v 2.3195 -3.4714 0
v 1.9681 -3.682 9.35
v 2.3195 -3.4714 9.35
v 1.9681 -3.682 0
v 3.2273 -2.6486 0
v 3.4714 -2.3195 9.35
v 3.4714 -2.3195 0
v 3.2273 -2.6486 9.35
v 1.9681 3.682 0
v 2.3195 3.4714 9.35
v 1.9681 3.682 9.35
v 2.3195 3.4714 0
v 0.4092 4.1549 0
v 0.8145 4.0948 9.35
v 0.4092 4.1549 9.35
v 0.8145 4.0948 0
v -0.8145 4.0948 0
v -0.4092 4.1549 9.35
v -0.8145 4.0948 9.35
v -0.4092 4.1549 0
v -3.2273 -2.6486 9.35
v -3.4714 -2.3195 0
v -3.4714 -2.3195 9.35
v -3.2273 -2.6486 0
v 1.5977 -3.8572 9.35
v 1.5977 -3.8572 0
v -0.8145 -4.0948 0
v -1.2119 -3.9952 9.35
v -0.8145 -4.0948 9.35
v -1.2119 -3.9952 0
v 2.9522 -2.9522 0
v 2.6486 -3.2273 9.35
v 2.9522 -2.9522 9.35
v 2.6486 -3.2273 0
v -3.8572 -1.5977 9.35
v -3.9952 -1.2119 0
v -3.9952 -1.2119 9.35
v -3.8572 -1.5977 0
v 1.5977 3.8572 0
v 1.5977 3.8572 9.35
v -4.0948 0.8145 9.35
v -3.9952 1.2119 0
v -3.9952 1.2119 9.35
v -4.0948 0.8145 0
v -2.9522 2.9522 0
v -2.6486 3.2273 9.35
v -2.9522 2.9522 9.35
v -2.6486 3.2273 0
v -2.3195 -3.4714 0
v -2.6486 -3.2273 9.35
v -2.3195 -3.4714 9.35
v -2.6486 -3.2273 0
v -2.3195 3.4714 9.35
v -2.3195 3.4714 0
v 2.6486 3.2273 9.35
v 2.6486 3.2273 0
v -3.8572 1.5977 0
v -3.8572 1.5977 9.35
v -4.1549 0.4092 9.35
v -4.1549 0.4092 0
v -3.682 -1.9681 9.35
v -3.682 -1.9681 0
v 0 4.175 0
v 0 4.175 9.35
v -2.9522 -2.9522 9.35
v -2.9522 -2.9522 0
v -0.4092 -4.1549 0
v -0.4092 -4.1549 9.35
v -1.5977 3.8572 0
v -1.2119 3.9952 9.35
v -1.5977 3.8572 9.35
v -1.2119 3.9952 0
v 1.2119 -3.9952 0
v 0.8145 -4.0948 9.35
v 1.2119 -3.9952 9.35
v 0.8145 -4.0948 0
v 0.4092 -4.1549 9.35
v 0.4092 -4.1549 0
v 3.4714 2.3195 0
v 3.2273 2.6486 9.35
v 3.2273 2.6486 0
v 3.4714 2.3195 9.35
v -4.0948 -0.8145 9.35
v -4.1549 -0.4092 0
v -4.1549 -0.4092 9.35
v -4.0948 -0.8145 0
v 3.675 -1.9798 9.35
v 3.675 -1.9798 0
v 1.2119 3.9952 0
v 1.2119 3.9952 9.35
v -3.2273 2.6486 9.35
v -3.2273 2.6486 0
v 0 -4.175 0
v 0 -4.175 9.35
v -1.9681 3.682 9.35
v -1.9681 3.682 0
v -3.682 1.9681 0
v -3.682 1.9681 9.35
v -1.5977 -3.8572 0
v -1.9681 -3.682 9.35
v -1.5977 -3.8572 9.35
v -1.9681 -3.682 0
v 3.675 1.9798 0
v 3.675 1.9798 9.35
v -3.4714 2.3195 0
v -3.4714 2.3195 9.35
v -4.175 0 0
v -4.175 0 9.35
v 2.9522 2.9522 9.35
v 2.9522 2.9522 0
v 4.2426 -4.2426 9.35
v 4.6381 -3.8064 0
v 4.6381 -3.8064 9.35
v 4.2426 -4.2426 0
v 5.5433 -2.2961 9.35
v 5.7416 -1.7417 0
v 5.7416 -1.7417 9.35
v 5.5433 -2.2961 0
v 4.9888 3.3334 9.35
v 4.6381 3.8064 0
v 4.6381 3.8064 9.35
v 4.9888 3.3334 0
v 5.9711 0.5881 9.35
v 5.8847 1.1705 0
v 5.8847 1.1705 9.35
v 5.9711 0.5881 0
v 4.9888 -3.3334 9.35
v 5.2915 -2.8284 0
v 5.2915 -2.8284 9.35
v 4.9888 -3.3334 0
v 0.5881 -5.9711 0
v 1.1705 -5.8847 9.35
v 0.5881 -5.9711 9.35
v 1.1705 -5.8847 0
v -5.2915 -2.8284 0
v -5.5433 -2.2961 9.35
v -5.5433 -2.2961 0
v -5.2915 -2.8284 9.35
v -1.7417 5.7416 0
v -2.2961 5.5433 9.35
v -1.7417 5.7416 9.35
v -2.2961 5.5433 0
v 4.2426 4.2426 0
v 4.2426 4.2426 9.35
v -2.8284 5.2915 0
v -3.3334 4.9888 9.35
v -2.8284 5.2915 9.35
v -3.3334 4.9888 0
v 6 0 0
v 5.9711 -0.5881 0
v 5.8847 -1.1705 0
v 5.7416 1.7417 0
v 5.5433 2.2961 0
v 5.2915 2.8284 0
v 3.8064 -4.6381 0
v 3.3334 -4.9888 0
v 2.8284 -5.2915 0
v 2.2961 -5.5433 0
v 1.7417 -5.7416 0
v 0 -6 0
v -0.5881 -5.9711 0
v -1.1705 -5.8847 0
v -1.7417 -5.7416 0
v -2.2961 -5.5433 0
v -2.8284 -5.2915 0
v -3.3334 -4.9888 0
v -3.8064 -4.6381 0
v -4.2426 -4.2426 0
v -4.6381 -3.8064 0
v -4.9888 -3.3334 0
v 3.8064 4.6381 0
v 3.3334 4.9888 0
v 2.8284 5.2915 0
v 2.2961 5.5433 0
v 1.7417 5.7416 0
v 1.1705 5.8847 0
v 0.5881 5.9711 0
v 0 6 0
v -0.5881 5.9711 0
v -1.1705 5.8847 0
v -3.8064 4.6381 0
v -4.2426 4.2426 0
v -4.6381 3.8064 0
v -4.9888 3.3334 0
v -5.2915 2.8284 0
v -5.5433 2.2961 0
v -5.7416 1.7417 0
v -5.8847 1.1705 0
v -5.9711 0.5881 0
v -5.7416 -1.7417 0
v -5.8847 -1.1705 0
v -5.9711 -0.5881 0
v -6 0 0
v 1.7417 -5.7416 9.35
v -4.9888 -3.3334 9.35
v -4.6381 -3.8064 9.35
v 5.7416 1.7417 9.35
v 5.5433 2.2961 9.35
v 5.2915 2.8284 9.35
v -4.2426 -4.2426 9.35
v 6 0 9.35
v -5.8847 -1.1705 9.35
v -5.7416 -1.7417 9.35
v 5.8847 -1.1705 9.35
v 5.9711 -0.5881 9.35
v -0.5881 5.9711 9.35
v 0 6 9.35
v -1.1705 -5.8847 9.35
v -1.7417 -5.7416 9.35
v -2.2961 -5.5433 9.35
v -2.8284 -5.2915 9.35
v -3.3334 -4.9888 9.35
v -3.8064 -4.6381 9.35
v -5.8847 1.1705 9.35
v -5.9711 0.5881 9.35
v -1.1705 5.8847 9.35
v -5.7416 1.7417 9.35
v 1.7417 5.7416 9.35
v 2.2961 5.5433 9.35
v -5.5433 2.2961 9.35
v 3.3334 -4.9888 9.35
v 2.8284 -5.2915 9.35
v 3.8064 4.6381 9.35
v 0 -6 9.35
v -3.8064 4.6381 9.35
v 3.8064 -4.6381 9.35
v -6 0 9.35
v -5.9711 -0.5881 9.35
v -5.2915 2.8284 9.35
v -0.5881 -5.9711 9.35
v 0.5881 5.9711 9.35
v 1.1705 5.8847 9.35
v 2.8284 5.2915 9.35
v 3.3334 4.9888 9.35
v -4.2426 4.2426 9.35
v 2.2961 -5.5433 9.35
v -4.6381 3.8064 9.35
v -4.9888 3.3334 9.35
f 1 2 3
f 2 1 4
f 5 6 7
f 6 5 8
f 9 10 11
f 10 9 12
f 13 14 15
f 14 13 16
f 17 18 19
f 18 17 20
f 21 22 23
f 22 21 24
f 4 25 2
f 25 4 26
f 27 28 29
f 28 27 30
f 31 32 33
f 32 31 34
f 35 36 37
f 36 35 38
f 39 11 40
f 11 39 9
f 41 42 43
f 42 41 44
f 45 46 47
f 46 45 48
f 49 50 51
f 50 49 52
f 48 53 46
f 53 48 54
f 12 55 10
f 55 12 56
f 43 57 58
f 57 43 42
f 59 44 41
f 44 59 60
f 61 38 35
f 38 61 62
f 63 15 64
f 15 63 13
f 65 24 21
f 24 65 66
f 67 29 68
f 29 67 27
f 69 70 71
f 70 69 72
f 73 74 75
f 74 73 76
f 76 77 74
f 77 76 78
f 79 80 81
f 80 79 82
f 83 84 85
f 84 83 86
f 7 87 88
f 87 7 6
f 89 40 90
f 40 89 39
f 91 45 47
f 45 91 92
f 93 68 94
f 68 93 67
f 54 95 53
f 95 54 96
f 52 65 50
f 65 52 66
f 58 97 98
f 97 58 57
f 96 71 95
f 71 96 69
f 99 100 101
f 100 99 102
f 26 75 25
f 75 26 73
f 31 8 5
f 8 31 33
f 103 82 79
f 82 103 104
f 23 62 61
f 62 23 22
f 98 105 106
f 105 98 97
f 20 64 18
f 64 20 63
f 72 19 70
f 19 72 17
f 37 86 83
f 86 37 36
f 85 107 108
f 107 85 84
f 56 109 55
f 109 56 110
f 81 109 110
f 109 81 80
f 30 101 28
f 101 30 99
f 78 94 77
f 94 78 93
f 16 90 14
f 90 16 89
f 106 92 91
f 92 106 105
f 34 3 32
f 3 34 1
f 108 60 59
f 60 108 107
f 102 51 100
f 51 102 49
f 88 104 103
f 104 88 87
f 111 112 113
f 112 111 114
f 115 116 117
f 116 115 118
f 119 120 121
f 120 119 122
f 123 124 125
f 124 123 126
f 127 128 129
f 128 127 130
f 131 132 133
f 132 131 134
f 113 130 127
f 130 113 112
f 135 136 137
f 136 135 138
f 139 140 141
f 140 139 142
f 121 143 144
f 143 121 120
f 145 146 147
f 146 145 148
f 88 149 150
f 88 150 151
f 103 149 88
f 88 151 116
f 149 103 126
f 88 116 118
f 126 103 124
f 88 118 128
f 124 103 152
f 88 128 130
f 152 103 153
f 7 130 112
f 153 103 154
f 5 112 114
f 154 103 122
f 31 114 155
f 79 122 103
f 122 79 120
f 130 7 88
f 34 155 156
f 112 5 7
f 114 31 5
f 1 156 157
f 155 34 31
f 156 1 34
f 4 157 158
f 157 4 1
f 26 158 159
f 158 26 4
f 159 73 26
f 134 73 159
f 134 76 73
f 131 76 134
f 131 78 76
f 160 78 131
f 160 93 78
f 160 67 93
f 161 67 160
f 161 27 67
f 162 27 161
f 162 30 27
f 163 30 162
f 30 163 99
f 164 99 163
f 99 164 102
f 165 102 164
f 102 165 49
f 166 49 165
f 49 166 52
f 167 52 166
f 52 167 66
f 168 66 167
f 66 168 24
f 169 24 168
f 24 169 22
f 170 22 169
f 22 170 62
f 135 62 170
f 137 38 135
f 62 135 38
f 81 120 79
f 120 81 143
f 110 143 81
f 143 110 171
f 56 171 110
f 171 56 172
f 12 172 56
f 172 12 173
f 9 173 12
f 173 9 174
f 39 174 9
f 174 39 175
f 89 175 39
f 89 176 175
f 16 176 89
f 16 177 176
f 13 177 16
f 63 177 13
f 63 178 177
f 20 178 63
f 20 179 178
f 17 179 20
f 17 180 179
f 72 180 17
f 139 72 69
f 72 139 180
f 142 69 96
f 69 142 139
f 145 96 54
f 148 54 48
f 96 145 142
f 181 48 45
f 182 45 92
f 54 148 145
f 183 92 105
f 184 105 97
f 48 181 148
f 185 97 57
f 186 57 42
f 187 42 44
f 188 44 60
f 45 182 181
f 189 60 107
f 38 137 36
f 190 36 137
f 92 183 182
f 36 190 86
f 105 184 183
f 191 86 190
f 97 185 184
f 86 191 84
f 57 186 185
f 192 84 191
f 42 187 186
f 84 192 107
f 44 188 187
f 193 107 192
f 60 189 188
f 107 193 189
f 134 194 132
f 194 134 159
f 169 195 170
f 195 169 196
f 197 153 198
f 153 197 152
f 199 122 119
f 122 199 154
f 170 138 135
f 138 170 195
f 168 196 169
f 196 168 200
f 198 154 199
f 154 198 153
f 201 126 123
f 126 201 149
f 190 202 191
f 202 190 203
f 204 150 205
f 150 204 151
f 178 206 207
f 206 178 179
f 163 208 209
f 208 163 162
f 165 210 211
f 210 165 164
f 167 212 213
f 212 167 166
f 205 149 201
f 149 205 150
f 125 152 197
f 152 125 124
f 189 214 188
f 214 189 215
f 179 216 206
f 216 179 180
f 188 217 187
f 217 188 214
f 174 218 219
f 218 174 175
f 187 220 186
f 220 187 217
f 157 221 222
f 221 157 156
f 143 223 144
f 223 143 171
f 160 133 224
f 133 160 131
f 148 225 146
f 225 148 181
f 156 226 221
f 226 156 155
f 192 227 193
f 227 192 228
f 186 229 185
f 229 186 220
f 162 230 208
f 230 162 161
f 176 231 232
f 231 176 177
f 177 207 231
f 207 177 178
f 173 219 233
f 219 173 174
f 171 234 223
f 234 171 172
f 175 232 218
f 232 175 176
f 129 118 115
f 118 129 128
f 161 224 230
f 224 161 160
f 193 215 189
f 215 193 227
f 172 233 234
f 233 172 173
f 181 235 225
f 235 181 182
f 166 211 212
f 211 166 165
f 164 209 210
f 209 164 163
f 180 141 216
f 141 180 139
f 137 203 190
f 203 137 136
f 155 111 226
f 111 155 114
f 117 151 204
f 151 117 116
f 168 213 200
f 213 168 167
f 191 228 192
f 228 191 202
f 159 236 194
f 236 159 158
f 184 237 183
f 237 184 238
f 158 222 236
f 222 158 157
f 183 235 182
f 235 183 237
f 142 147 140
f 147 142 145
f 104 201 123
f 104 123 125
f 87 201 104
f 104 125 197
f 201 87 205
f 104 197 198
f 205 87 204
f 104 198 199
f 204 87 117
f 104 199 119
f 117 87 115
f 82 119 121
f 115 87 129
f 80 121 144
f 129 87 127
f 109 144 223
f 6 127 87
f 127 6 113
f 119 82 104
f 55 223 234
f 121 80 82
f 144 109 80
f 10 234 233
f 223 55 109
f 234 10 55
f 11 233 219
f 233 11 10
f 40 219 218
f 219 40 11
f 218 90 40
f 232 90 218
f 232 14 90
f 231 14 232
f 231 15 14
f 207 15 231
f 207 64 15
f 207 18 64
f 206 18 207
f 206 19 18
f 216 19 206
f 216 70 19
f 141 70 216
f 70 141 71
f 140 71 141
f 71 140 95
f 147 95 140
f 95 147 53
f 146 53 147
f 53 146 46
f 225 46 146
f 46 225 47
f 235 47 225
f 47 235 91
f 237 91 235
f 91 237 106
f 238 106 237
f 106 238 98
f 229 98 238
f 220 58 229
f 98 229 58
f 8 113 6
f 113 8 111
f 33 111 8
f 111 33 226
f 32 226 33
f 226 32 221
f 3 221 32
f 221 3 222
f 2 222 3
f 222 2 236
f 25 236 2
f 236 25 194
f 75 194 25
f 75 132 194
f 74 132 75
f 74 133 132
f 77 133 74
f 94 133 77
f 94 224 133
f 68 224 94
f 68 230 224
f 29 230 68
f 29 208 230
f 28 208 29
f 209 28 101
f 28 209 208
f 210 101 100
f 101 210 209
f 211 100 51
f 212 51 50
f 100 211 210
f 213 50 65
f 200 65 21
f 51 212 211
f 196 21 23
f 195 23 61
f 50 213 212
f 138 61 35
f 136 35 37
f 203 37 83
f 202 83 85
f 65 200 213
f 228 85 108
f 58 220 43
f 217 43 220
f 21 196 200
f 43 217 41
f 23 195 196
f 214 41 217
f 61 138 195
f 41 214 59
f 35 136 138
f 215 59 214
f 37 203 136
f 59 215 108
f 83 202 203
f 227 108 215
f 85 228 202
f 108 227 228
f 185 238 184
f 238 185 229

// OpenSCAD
// file: parameters.scad
// =============================================================================
// Gen-BW — nightly 2026-10-10 (physics_scorer, honest magpylib watts)
// Stacked poles: two Ø20×5 per pocket (10 mm poles), 4 per rotor at R52, trading pole count for field — peak Bz at the copper rises to ≈0.73 T (vs 0.54 T on Gen-BR), which lets a thin 6.75 mm copper layer with a very deep 21 mm build carry the turns. But the electrical frequency halves, and the scorer puts it at about 45 % of Gen-BR: the thicker magnets do not make up for half the poles.
// Clocking 0 deg (magnets N facing S) + D-flat keyed bore + index notch + flip-symmetric hole map.
// Windable 2-piece bobbin; turns = physics_scorer turns_fit; copper only between flanges.
// Steel back-iron: 2× Ø134 × 6.35 mm (1/4") mild-steel discs (steel_backiron_disc.dxf); magnets sit ON the steel
// (through-pockets) -> score with --back-iron. Night 2026-10-10.
// =============================================================================
topology            = "dual_rotor";

// --- Wire / winding (physics_scorer winding-fit) -------------------------------
wire_awg            = 26;
wire_od             = 0.45;     // insulated OD mm (bare 0.405)
fill_realistic      = 0.65;     // insulated-wire area / window (DENSE layered wind with a jig; scorer cap 0.65)
turns               = 586;       // = physics_scorer turns_fit (do NOT raise)
coil_former_type    = "bobbin";
coil_core_inset     = 21.25;     // radial copper build: hub = copper boundary inset by this
wind_build_axial    = 0.0;      // nothing proud of the flanges
wind_build_radial   = 0.0;

// --- Bobbin (base + lid) ---------------------------------------------------------
coil_id_r           = 26.00;    // copper boundary sector
coil_od_r           = 74.00;
span_deg            = 52.72;    // = pitch - 2*asin((wall+0.85)/coil_id_r) -> >=1.2 mm stator web
former_web          = 6.75;     // copper height between flanges (TALL copper: steel keeps Bz up)
flange_t            = 0.80;     // >= 0.8 mm FDM wall rule (tall winds push on the flanges)
wall                = 0.80;     // flange lip beyond copper
former_bare_h       = former_web + 2 * flange_t;
coil_envelope_h     = former_bare_h + 2 * wind_build_axial;
tab_w               = 7.0;
tab_len             = 7.0;
tab_h               = former_bare_h / 2;
pin_d               = 1.9;      // 1.75 mm filament locating pin
coil_mount_r        = coil_od_r + 0.2 + 4.0;
lead_y              = 1.6;
lead_slot_w         = 0.9;
lead_groove_d       = 0.6;

// --- Gap -------------------------------------------------------------------------
run_clear           = 0.50;     // rotor face -> flange
gap_spacer_h        = run_clear + wind_build_axial;
m2m                 = coil_envelope_h + 2 * run_clear;   // rotor face to rotor face (= gap_sleeve length)

// --- Stator ----------------------------------------------------------------------
coil_stations       = 6;
bay_clear           = 0.25;
stator_thick        = former_bare_h;                        // bobbins flush both faces
stator_od           = 166;
shaft_clear_stator  = 14.0;     // stator is static; gap sleeve OD 12 spins inside

// --- Rotor(s) --------------------------------------------------------------------
magnet_Br           = 1.43;     // N52
magnet_d_large      = 20.0;
magnet_h_large      = 10.0;      // two O20x5 stacked per pocket
magnet_h_small      = 5.0;      // unused: no O5 pockets in this kit
halbach_magnetisation = "none";  // NO O5 assist magnets in this kit (scan: they lower the 4-pole score)
rotor_b_same_axis   = true;     // same-index magnets share one axis: N faces S across the gap
large_pocket_d      = 20.3;
small_pocket_d      = 5.3;
pocket_h            = 10.00;     // THROUGH the carrier: magnet back face sits on the steel disc (FLUSH seat: carrier = magnet height, magnet face level with the rotor face)
large_n             = 4;
R_large             = 52.0;
small_r_list        = [];       // no O5 pockets
carrier_od          = 134.0;
carrier_thick       = pocket_h;
hub_h               = 14.0;     // > steel_t + insert: radial set-screw clears the steel
hub_od              = 24.0;     // slim hub so the M4 brace rods fit at R~18 inside the coil ring
hub_insert_d        = 4.0;      // M3 heat-set insert, radial, bears on the D-flat
rotor_b_offset_deg  = 0.0;      // CLOCKING: magnets directly opposite
shaft_key           = "dflat";
dflat_depth         = 0.5;      // 8 mm shaft with 0.5 mm flat (7.5 across flat)
index_notch_d       = 3.0;

// --- Steel back-iron (buyable laser-cut) -------------------------------------------
steel_t             = 6.35;      // mild steel thickness (image method ignores it; sized from steel_flux.py so the return path stays well below saturation)
steel_center_hole   = 26.0;     // slips over the rotor hub (OD 24)
steel_od            = carrier_od;   // steel disc OD = rotor carrier OD

// --- Modular MAX interface ----------------------------------------------------------
shaft_bore          = 8.35;
dflat_x             = 4.0 - dflat_depth + (shaft_bore - 8.0) / 2;
bearing_d           = 21.85;
bearing_h           = 7.2;
m3_clear            = 3.5;
bolt_r_inner        = 30.0;     // M3 steel-disc clamp bolts (inside the magnet ring)
bolt_n_inner        = 4;
bolt_inner_angles   = [0, 90, 180, 270];
bolt_r_outer        = 63.0;     // second M3 steel-disc clamp ring
bolt_outer_angles   = [45, 135, 225, 315];
flange_bolt_r       = 73.0;     // frame rods: OUTSIDE the rotor OD (rotors spin inside them)
flange_bolt_n       = 6;
flange_bolt_offset  = 30.00;    // between coil stations -> never cuts a lead groove/tab
brace_r             = 18.0;
brace_d             = 4.3;      // temporary M4 jack rods (assembly only)
brace_n             = 4;
brace_angles        = [45, 135, 225, 315];          // flip-symmetric

spacer_pad_od       = 14.0;
spacer_pad_id       = m3_clear;
endbell_od          = 156.0;
endbell_thick       = 8.0;
endbell_shaft_clear = 10.0;
collar_h            = 10.0;
standoff_od         = 9.0;
frame_standoff_h    = run_clear + carrier_thick + hub_h + collar_h + 2.0;
sleeve_od           = 12.0;
plate_max_mm        = 410;

$fn = 64;
// main file
// Gen-BW — gap sleeve: rigid spacer on the shaft BETWEEN the two rotor carriers (passes through the stator
// hole). Length = m2m, so it sets the magnet gap and carries the full magnet pull. Print x1, upright.
include <parameters.scad>;
$fn = 64;
// D-flat keyed bore: flat faces +X (angle 0 = magnet pocket 0 = index notch)
module dflat_bore(h) {
    intersection() {
        cylinder(d=shaft_bore, h=h);
        translate([-shaft_bore, -shaft_bore, 0]) cube([shaft_bore + dflat_x, 2*shaft_bore, h]);
    }
}

difference() {
    cylinder(d=sleeve_od, h=m2m);
    translate([0, 0, -0.1]) dflat_bore(m2m + 0.2);
}
